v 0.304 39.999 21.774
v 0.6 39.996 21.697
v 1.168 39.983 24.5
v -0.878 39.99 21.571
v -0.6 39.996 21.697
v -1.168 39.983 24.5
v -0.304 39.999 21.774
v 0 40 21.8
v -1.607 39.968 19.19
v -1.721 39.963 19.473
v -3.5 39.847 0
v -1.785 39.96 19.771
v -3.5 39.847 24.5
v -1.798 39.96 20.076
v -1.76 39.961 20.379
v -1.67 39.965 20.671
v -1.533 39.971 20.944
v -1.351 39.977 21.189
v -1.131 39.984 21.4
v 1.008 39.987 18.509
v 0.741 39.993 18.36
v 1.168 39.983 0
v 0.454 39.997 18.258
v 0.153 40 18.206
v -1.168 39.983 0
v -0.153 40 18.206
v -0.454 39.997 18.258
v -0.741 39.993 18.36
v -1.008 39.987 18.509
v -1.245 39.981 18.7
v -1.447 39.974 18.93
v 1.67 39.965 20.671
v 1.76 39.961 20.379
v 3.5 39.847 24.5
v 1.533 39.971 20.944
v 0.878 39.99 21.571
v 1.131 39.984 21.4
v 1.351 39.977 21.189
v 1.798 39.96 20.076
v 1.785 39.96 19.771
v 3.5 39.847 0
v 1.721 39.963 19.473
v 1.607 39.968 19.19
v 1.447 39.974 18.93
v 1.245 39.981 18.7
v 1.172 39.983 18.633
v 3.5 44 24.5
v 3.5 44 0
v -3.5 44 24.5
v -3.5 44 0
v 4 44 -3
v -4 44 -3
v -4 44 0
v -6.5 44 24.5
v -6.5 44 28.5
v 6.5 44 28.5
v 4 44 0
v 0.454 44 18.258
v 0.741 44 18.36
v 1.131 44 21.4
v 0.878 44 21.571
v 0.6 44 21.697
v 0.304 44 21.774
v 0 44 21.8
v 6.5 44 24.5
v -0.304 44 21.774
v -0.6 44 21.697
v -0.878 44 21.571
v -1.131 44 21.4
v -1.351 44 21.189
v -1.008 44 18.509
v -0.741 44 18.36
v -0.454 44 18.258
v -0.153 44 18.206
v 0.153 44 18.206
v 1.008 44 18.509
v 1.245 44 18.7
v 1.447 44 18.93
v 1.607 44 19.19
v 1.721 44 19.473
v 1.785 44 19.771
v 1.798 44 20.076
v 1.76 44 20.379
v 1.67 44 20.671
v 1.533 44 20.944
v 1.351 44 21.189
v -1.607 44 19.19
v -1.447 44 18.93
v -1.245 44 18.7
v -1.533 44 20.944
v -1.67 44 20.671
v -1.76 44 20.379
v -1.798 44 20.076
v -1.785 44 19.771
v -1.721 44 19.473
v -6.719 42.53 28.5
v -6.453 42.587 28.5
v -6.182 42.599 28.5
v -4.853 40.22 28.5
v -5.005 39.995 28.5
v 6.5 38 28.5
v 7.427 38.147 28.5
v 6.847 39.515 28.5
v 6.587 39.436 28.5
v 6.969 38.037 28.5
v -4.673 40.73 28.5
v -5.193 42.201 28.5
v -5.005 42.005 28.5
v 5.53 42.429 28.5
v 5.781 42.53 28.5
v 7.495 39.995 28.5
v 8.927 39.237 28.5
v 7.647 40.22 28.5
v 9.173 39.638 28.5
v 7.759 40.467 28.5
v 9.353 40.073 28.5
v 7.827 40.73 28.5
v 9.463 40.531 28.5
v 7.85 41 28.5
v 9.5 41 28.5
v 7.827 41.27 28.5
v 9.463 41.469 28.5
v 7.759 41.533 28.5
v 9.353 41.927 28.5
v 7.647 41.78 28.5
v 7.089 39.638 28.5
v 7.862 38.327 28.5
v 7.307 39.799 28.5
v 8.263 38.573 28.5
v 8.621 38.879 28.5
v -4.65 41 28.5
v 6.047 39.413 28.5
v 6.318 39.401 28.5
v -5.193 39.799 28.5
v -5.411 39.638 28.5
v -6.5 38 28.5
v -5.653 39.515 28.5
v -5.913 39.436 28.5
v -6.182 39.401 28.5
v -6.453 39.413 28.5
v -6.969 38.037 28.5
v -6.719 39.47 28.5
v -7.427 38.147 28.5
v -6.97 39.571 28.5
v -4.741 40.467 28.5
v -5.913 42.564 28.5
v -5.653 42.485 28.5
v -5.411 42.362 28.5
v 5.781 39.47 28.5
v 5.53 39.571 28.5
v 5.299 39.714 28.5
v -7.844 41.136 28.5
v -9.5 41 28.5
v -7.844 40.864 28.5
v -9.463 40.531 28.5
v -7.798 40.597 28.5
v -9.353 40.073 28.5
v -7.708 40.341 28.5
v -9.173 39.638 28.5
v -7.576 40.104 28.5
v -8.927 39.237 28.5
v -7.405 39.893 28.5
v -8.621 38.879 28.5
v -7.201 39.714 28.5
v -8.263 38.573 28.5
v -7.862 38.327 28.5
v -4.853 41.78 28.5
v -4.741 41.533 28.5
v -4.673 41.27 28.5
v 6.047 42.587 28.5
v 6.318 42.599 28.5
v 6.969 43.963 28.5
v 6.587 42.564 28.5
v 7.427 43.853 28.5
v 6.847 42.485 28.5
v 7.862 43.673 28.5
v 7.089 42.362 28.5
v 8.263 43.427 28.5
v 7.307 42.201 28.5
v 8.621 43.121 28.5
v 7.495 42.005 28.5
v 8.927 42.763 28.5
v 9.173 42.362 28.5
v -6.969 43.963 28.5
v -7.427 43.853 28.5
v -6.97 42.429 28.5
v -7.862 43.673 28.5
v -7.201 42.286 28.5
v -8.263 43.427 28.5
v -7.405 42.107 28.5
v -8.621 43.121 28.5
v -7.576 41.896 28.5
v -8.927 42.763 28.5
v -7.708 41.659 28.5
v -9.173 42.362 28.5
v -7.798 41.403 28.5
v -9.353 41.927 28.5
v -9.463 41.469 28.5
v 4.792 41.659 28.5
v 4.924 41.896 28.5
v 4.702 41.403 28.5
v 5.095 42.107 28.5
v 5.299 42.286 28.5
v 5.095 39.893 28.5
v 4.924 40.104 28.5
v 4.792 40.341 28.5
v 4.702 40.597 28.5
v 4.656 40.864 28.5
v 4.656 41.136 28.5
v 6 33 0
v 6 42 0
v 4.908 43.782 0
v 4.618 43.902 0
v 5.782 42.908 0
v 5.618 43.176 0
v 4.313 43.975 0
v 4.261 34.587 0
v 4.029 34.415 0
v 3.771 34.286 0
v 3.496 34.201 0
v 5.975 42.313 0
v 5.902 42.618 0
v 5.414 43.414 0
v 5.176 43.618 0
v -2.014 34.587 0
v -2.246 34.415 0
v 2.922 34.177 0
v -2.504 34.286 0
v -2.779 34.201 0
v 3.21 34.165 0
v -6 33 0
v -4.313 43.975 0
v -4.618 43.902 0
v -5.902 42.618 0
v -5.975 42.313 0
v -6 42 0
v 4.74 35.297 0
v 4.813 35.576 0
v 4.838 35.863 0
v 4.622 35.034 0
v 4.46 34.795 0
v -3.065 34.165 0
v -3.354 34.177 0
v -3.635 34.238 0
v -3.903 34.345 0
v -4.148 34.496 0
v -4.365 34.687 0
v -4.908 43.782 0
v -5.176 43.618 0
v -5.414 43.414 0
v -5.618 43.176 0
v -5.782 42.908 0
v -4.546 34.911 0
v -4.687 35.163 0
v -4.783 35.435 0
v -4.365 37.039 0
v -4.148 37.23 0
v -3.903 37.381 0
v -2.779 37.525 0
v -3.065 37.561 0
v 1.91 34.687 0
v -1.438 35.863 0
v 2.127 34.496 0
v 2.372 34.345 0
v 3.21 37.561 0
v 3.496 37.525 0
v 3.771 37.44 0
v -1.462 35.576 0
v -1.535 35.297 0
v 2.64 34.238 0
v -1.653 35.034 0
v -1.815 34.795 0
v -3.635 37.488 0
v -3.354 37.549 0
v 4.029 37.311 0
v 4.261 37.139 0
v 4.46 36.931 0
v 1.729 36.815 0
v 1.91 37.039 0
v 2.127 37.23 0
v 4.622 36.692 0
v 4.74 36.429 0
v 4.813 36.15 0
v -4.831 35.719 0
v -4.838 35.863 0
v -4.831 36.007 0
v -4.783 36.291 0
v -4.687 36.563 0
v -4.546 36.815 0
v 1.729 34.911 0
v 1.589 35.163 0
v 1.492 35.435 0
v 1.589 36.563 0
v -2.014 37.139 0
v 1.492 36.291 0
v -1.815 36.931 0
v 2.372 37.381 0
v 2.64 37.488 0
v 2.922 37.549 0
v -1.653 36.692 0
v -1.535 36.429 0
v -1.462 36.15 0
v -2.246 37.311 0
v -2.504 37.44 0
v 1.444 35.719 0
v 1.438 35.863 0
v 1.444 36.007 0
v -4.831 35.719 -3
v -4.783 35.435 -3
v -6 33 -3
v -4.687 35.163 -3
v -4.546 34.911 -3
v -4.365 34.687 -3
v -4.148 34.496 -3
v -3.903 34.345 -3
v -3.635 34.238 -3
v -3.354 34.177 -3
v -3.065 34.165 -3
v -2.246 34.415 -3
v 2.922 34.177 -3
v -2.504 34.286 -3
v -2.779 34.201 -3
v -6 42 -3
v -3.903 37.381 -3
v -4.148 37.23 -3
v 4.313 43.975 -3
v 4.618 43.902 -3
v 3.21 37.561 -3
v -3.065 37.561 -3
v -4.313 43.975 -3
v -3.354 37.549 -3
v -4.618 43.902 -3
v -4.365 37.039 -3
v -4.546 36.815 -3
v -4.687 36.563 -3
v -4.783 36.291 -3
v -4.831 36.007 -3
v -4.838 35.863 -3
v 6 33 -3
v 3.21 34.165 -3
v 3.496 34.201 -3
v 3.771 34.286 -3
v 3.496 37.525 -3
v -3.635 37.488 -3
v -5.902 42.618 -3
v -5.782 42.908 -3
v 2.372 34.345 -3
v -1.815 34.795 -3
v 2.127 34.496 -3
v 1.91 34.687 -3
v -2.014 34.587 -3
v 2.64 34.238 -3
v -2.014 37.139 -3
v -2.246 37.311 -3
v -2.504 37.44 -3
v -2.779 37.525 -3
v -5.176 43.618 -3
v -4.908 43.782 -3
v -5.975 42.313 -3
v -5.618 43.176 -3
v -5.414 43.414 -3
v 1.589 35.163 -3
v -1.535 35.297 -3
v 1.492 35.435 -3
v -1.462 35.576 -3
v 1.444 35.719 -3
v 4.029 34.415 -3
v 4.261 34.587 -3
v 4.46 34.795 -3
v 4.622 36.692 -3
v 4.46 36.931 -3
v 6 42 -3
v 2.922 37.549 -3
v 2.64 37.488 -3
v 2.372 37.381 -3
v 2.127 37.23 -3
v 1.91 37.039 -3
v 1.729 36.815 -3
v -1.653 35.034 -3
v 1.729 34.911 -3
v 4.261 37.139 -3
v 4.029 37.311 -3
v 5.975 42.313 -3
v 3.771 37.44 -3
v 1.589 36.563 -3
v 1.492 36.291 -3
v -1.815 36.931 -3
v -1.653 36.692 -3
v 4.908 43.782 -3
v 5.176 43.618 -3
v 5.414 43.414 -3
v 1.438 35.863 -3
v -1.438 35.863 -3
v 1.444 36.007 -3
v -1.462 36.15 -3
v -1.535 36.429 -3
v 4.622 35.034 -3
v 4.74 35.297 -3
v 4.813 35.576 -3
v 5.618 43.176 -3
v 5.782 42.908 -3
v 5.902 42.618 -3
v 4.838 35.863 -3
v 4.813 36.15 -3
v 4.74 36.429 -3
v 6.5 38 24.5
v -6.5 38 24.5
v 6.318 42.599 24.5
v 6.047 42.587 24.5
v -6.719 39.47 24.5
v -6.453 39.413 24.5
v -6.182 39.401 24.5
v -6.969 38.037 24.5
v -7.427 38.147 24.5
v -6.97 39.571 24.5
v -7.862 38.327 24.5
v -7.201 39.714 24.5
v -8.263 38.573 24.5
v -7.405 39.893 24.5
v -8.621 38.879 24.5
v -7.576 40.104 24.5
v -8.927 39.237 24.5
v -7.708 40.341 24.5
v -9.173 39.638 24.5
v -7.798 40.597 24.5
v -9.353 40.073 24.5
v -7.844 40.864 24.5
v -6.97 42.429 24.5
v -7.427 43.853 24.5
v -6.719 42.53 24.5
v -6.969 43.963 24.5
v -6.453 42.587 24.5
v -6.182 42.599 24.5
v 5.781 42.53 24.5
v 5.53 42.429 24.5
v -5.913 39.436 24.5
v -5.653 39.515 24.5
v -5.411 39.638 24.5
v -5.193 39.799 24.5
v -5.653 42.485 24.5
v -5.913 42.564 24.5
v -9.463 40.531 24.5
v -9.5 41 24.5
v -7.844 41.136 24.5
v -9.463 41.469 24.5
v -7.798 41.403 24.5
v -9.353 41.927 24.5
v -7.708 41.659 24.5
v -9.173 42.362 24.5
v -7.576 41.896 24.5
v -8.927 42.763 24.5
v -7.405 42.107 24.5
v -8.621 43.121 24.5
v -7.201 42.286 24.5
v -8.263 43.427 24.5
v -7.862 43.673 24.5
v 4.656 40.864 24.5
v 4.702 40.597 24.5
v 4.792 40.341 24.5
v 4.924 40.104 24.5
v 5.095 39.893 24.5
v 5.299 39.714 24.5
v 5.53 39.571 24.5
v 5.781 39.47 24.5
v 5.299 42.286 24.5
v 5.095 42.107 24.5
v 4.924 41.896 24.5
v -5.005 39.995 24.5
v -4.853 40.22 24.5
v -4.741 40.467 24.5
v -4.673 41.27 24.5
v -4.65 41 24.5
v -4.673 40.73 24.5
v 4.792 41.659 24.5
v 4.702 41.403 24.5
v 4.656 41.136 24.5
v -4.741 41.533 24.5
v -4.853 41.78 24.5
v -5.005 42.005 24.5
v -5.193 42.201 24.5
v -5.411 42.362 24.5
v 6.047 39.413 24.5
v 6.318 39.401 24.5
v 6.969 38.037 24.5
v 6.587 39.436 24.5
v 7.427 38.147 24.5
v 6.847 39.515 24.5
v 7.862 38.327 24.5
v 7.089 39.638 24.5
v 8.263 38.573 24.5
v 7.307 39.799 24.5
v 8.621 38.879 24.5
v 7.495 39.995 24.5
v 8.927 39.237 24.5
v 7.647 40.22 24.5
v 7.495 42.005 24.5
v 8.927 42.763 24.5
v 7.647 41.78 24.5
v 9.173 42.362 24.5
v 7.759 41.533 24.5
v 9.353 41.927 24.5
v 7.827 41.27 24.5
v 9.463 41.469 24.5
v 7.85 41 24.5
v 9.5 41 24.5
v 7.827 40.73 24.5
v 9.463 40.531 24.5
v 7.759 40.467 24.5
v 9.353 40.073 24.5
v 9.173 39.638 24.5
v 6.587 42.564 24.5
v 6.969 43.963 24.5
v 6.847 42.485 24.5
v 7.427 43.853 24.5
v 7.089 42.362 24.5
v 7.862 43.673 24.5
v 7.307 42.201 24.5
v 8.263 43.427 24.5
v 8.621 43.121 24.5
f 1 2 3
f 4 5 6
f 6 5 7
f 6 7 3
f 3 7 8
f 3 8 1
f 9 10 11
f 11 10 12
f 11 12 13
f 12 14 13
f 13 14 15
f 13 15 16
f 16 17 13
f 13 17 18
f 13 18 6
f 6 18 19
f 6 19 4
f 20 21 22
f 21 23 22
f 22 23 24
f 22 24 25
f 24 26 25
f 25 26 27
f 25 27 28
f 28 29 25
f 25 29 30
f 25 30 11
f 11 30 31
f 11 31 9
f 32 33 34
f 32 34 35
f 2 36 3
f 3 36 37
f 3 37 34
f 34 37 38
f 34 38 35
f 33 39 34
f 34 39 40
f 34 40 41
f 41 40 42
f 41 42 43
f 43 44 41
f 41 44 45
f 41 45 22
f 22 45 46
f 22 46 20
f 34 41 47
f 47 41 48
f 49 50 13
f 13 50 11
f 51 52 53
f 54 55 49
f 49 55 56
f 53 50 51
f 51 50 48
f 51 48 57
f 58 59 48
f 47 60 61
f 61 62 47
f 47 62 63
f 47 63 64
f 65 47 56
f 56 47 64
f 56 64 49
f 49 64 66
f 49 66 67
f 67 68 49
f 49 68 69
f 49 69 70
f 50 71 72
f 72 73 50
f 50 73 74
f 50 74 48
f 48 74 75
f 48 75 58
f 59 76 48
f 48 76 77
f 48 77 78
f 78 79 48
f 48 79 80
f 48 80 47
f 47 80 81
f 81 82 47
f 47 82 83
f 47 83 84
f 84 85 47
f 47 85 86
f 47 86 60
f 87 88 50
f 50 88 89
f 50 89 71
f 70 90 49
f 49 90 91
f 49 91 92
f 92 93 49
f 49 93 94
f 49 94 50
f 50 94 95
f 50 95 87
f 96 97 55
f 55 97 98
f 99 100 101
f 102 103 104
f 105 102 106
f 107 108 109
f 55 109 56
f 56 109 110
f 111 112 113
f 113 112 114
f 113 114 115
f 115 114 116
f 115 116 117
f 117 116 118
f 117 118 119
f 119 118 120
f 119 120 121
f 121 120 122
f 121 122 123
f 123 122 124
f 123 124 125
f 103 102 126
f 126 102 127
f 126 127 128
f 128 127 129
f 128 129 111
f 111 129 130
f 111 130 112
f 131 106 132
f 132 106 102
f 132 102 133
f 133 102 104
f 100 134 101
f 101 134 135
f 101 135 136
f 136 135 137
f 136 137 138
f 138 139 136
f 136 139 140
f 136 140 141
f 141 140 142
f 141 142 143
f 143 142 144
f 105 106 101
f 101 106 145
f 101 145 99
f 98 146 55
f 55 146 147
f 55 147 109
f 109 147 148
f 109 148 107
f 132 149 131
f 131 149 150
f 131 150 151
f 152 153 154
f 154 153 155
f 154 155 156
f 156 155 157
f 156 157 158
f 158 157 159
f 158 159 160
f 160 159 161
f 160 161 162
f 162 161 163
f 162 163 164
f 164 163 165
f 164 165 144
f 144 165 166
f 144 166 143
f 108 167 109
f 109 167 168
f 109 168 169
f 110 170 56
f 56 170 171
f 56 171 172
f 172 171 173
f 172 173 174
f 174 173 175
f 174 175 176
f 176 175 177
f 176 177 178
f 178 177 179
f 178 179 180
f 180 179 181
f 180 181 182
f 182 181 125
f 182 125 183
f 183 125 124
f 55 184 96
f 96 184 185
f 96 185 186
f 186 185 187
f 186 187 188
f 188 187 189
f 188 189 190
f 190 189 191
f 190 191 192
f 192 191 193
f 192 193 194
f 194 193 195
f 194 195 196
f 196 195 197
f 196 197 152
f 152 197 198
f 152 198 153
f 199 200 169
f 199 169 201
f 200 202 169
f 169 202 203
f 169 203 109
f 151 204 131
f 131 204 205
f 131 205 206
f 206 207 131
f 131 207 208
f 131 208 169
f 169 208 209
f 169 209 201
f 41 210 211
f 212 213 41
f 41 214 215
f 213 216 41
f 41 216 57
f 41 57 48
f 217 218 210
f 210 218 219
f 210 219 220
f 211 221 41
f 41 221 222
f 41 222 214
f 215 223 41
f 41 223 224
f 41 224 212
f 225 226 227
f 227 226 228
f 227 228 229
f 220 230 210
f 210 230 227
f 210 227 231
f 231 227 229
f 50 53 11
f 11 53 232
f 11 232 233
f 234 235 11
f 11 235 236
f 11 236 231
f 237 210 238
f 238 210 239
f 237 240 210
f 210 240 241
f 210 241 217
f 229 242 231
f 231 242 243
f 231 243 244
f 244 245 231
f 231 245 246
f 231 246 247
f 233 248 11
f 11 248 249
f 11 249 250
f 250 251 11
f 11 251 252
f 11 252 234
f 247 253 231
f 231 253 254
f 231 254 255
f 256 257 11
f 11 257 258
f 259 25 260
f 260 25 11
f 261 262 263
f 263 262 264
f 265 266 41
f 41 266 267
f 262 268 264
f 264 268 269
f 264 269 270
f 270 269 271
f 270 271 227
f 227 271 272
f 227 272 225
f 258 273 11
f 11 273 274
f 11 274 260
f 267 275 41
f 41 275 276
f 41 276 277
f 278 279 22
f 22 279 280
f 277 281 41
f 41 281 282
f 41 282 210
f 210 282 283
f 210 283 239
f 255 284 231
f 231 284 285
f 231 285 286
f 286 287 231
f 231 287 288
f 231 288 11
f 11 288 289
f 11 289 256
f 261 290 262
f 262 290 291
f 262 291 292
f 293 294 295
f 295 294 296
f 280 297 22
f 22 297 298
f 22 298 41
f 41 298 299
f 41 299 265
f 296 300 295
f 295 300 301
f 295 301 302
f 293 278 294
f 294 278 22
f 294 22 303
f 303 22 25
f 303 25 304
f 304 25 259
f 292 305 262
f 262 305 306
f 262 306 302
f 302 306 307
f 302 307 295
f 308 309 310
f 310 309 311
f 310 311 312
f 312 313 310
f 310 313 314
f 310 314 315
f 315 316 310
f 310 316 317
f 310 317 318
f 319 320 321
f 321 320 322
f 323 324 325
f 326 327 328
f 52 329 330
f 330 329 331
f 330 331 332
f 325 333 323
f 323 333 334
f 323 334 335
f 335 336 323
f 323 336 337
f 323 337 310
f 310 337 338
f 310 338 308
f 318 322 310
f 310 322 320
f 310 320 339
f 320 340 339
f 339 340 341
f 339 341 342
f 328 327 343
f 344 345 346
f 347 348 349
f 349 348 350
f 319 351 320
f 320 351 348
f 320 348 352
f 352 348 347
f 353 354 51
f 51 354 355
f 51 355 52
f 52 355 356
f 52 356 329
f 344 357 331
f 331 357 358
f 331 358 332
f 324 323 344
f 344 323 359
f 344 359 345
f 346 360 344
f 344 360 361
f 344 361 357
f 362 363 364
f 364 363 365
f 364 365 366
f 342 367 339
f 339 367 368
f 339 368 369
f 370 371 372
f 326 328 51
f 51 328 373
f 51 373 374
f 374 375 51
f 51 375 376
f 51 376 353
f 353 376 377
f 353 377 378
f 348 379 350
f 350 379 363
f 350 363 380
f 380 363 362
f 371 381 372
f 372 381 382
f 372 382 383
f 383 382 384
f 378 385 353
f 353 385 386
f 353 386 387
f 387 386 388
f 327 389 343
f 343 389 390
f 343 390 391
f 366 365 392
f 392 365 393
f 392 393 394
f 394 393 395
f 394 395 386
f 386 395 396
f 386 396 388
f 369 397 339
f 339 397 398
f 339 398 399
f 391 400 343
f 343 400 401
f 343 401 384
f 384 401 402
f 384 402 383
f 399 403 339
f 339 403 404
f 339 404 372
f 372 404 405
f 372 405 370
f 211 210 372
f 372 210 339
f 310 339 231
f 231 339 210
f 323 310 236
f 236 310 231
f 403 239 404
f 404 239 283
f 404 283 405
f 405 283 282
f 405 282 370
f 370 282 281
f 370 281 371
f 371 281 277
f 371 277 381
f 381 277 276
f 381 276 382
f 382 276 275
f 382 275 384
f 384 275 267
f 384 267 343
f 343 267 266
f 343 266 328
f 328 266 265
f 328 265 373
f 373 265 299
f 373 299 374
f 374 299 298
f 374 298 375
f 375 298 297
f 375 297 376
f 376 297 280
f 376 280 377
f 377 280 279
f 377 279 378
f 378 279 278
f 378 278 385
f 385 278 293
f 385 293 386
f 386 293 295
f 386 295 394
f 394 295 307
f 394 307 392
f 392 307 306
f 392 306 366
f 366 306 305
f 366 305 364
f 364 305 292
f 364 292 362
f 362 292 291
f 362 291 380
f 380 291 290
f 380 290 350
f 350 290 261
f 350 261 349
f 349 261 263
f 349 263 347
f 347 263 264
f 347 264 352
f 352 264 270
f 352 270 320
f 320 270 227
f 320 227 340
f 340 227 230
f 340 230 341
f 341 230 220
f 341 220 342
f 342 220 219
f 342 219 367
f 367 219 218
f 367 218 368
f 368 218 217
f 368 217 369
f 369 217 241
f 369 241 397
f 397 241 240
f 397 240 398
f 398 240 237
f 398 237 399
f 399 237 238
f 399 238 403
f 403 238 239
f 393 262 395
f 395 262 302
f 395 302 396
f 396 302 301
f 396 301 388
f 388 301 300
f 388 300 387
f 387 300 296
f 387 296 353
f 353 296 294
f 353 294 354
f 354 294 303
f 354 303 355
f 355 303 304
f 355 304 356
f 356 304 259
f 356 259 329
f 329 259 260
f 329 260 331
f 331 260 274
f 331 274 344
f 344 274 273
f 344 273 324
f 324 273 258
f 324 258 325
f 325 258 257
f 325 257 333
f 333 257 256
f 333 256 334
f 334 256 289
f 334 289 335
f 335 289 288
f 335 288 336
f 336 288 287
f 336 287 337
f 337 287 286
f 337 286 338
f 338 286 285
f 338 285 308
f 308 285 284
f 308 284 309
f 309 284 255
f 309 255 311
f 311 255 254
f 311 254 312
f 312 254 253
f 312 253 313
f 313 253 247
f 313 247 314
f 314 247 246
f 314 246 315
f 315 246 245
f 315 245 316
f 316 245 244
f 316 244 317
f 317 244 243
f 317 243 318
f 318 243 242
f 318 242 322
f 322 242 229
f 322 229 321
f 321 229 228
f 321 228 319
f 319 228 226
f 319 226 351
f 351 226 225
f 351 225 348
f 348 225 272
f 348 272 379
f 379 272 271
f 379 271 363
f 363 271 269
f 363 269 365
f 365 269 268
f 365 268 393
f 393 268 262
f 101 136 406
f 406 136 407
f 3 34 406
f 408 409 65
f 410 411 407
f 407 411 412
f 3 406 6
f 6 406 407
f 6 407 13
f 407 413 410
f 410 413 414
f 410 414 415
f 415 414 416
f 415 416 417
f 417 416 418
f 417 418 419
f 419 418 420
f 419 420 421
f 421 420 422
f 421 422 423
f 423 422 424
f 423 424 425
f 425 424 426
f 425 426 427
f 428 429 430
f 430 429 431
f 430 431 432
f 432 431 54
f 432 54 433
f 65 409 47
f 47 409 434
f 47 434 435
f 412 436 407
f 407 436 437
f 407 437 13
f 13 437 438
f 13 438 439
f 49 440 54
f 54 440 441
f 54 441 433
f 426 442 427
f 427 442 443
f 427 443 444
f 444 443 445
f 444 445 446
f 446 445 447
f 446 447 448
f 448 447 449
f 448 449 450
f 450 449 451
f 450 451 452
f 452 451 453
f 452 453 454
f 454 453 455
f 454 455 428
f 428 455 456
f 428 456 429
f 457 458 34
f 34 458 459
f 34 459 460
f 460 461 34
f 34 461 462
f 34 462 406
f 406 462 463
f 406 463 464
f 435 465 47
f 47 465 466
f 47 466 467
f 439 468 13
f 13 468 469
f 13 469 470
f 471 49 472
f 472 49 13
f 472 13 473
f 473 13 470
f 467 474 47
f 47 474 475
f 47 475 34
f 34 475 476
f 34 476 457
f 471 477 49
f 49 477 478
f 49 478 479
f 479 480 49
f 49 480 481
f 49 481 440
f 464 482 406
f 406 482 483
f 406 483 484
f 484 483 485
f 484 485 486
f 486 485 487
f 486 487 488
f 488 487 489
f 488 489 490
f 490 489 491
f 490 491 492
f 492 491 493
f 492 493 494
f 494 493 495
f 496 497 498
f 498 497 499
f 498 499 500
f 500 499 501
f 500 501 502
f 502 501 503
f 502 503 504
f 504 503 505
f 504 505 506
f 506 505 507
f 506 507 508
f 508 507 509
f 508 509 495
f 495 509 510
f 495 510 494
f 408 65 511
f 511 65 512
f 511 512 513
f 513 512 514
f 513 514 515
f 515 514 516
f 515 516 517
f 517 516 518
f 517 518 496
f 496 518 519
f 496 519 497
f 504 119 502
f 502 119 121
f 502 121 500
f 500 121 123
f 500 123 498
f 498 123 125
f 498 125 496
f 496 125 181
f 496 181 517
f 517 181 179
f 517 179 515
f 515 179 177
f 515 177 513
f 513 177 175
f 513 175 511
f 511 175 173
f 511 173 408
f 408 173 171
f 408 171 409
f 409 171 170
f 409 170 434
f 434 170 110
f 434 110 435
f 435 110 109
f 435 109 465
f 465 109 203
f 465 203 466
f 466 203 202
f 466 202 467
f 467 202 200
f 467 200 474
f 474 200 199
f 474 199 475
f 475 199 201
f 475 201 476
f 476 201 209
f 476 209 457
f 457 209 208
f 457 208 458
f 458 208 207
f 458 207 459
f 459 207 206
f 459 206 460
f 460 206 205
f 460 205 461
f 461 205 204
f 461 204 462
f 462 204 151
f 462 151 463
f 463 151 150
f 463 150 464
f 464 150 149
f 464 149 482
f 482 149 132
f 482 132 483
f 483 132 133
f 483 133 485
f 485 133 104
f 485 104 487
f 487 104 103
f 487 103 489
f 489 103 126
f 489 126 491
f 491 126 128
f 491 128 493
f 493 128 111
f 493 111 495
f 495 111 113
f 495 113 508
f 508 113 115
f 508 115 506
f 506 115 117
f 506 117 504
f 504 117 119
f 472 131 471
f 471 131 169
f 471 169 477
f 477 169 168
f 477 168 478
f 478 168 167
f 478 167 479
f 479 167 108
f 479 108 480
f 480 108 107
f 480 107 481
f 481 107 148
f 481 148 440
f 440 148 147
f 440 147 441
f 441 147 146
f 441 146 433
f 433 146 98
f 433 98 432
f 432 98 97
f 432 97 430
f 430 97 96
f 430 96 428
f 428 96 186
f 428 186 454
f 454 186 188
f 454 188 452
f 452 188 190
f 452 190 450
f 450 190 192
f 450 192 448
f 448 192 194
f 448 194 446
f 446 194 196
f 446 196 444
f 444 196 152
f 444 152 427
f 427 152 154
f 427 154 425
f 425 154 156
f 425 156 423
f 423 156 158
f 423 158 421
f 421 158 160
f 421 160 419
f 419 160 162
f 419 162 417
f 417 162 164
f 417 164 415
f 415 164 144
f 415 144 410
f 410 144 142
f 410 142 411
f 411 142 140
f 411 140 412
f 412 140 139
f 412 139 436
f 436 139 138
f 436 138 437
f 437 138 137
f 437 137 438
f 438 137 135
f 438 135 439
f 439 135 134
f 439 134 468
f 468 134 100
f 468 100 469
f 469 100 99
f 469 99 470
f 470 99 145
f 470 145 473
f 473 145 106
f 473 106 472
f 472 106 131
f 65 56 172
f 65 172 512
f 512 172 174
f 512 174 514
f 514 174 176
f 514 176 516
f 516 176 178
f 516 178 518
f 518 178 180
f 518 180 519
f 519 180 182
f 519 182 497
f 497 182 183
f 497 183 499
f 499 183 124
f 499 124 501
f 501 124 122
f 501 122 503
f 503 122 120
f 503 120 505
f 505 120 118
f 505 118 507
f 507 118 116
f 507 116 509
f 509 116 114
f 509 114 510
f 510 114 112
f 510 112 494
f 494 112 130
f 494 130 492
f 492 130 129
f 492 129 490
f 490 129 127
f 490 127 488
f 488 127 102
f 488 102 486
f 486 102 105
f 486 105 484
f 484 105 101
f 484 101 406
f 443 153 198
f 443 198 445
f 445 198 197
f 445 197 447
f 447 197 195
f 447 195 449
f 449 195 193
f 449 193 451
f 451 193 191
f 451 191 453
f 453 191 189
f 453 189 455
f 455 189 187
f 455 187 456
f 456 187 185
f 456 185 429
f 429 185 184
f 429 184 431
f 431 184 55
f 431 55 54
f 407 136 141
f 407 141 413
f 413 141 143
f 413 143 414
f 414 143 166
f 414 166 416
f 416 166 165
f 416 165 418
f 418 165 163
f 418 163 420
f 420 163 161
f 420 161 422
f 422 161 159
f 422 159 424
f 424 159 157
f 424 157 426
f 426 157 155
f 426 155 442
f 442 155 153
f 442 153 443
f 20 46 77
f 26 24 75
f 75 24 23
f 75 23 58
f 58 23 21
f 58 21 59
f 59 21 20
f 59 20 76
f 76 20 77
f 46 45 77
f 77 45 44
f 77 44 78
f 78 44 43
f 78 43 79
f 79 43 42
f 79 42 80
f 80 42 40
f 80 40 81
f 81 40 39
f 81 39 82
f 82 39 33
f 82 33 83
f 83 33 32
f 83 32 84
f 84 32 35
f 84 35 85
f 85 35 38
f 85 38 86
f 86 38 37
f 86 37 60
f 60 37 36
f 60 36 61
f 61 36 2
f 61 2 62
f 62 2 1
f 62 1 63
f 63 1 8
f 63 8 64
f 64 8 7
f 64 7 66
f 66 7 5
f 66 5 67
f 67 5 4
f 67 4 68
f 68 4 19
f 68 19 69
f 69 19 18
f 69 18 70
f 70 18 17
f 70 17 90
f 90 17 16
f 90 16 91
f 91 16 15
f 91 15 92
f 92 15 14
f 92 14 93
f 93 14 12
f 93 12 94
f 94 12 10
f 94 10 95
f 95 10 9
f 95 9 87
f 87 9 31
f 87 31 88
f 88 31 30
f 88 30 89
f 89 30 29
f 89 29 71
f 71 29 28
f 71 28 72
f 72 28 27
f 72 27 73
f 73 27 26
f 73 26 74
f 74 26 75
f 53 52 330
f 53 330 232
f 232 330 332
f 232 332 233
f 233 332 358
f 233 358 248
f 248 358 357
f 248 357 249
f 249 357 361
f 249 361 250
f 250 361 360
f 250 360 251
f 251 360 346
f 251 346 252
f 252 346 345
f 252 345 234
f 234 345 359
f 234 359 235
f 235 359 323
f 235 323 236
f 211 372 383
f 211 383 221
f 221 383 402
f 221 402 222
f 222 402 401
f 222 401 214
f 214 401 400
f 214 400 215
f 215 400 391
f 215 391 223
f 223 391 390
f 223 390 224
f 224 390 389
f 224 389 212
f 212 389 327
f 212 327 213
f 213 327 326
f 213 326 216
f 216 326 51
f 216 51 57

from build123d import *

# Parameters (mm, degrees)
BOSS_EXTRUDE1_DEPTH      = 28.5
SKETCH2_W                = 12
SKETCH2_H                = 11
SKETCH2_R                = 1.7
BOSS_EXTRUDE2_DEPTH      = 3
SKETCH3_W                = 19
SKETCH3_H                = 6
BOSS_EXTRUDE3_DEPTH      = 4
M3_CLEARANCE_HOLE1_D     = 3.2
M3_CLEARANCE_HOLE1_DEPTH = 4
FILLET1_R                = 3
M3_CLEARANCE_HOLE2_D     = 3.6
FILLET2_R                = 2


with BuildPart() as part:
    # Sketch1 → Boss-Extrude1 (new body)
    with BuildSketch(Plane.XY):
        with BuildLine():
            Line((-3.5, 44), (-3.5, 39.846580782))
            ThreePointArc((-3.5, 39.846580782), (0, 40), (3.5, 39.846580782))
            Line((3.5, 39.846580782), (3.5, 44))
            Line((3.5, 44), (-3.5, 44))
        make_face()
    extrude(amount=BOSS_EXTRUDE1_DEPTH)

    # Sketch2 → Boss-Extrude2 (add)
    with BuildSketch(Plane(origin=(0, 0, 0), x_dir=(-1, 0, 0), z_dir=(0, 0, -1))):
        with Locations((0, 38.5)):
            Rectangle(SKETCH2_W, SKETCH2_H)
        with Locations((-3.137606739, 35.863009131)):
            Circle(SKETCH2_R, mode=Mode.SUBTRACT)
        with Locations((3.137606739, 35.863009131)):
            Circle(SKETCH2_R, mode=Mode.SUBTRACT)
    extrude(amount=BOSS_EXTRUDE2_DEPTH)

    # Sketch3 → Boss-Extrude3 (add)
    with BuildSketch(Plane.XY.offset(28.5)):
        with Locations((0, 41)):
            Rectangle(SKETCH3_W, SKETCH3_H)
    extrude(amount=-BOSS_EXTRUDE3_DEPTH)

    # M3 Clearance Hole1
    with Locations(Plane.XY.offset(28.5)):
        with Locations((-6.25, 41), (6.25, 41)):
            Hole(M3_CLEARANCE_HOLE1_D / 2, depth=M3_CLEARANCE_HOLE1_DEPTH)

    # Fillet1
    fillet1_edges = [part.edges().sort_by_distance(p)[0] for p in [
        (9.5, 38, 26.5),
        (9.5, 44, 26.5),
        (-9.5, 38, 26.5),
        (-9.5, 44, 26.5),
    ]]
    fillet(fillet1_edges, radius=FILLET1_R - 0.0001)  # a hair under: the kernel refuses the full size

    # M3 Clearance Hole2 (through all)
    with Locations(Plane(origin=(0, 44, 0), x_dir=(1, 0, 0), z_dir=(0, 1, 0))):
        with Locations((0, -20)):
            Hole(M3_CLEARANCE_HOLE2_D / 2)

    # Fillet2
    fillet2_edges = [part.edges().sort_by_distance(p)[0] for p in [
        (6, 44, -1.5),
        (-6, 44, -1.5),
    ]]
    fillet(fillet2_edges, radius=FILLET2_R)


solid = part.part
